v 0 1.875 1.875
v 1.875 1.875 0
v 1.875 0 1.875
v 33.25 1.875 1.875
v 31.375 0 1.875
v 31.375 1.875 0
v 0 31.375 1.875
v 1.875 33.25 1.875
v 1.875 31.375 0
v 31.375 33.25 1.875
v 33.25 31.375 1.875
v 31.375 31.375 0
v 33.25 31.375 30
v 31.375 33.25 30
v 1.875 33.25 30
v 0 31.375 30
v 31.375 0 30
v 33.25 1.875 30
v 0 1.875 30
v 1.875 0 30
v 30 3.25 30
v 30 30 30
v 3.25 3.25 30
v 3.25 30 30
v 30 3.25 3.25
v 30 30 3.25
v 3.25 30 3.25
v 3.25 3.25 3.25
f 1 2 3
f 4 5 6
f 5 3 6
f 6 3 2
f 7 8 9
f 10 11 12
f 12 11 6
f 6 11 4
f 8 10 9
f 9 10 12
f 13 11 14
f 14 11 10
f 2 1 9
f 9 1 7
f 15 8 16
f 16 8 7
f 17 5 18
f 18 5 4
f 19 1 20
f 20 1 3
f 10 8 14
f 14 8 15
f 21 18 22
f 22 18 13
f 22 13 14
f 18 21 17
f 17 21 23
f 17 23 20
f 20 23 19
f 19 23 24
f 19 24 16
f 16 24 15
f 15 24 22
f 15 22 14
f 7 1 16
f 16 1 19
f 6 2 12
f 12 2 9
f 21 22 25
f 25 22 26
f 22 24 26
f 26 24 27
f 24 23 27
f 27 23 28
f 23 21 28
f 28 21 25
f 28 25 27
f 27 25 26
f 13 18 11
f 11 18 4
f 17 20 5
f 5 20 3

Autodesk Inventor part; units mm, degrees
ref_plane "YZ Plane" through (0, 0, 0) normal (1, 0, 0) x (0, 1, 0)
ref_plane "XZ Plane" through (0, 0, 0) normal (0, 1, 0) x (-1, 0, 0)
ref_plane "XY Plane" through (0, 0, 0) normal (0, 0, 1) x (1, 0, 0)
sketch "Sketch1" plane through (0, 0, 0) normal (0, 0, 1) x (1, 0, 0)
  line L0 (0, 0) -> (33.25, 0)
  line L1 (33.25, 0) -> (33.25, 33.25)
  line L2 (33.25, 33.25) -> (0, 33.25)
  line L3 (0, 33.25) -> (0, 0)
  dimension "d0" = 33.25
  dimension "d1" = 33.25
extrude "Extrusion1" add sketch "Sketch1" along normal blind 30
sketch "Sketch2" plane through (0, 0, 30) normal (0, 0, 1) x (1, 0, 0)
  point P0 (0, 0)
sketch "Sketch3" plane through (0, 0, 30) normal (0, 0, 1) x (1, 0, 0)
  line L0 (3.25, 3.25) -> (30, 3.25)
  line L1 (30, 3.25) -> (30, 30)
  line L2 (30, 30) -> (3.25, 30)
  line L3 (3.25, 30) -> (3.25, 3.25)
  line L4 (33.25, 0) -> (33.25, 33.25) projected
  line L5 (0, 0) -> (33.25, 0)
  line L6 (33.25, 0) -> (33.25, 33.25)
  line L7 (33.25, 33.25) -> (0, 33.25)
  line L8 (0, 33.25) -> (0, 0)
  dimension "d4" = 26.75
  dimension "d5" = 26.75
extrude "Extrusion2" cut sketch "Sketch3" against normal blind 26.75 contours L3 L2 L1 L0
chamfer "Chamfer1" distance 1.875 angle 45 8 edges at (33.25, 33.25, 15) (33.25, 0, 15) (0, 33.25, 15) (0, 0, 15) (0, 16.625, 0) (16.625, 33.25, 0) (16.625, 0, 0) (33.25, 16.625, 0)
sketch "Sketch4" plane through (0, 0, 0) normal (0, 0, -1) x (-1, 0, 0)
  circle A0 centre (-16.625, 16.625) radius 4.625
  point P0 (0, 0)
  dimension "d11" = 9.25
properties part number "cuvette holder lid"
